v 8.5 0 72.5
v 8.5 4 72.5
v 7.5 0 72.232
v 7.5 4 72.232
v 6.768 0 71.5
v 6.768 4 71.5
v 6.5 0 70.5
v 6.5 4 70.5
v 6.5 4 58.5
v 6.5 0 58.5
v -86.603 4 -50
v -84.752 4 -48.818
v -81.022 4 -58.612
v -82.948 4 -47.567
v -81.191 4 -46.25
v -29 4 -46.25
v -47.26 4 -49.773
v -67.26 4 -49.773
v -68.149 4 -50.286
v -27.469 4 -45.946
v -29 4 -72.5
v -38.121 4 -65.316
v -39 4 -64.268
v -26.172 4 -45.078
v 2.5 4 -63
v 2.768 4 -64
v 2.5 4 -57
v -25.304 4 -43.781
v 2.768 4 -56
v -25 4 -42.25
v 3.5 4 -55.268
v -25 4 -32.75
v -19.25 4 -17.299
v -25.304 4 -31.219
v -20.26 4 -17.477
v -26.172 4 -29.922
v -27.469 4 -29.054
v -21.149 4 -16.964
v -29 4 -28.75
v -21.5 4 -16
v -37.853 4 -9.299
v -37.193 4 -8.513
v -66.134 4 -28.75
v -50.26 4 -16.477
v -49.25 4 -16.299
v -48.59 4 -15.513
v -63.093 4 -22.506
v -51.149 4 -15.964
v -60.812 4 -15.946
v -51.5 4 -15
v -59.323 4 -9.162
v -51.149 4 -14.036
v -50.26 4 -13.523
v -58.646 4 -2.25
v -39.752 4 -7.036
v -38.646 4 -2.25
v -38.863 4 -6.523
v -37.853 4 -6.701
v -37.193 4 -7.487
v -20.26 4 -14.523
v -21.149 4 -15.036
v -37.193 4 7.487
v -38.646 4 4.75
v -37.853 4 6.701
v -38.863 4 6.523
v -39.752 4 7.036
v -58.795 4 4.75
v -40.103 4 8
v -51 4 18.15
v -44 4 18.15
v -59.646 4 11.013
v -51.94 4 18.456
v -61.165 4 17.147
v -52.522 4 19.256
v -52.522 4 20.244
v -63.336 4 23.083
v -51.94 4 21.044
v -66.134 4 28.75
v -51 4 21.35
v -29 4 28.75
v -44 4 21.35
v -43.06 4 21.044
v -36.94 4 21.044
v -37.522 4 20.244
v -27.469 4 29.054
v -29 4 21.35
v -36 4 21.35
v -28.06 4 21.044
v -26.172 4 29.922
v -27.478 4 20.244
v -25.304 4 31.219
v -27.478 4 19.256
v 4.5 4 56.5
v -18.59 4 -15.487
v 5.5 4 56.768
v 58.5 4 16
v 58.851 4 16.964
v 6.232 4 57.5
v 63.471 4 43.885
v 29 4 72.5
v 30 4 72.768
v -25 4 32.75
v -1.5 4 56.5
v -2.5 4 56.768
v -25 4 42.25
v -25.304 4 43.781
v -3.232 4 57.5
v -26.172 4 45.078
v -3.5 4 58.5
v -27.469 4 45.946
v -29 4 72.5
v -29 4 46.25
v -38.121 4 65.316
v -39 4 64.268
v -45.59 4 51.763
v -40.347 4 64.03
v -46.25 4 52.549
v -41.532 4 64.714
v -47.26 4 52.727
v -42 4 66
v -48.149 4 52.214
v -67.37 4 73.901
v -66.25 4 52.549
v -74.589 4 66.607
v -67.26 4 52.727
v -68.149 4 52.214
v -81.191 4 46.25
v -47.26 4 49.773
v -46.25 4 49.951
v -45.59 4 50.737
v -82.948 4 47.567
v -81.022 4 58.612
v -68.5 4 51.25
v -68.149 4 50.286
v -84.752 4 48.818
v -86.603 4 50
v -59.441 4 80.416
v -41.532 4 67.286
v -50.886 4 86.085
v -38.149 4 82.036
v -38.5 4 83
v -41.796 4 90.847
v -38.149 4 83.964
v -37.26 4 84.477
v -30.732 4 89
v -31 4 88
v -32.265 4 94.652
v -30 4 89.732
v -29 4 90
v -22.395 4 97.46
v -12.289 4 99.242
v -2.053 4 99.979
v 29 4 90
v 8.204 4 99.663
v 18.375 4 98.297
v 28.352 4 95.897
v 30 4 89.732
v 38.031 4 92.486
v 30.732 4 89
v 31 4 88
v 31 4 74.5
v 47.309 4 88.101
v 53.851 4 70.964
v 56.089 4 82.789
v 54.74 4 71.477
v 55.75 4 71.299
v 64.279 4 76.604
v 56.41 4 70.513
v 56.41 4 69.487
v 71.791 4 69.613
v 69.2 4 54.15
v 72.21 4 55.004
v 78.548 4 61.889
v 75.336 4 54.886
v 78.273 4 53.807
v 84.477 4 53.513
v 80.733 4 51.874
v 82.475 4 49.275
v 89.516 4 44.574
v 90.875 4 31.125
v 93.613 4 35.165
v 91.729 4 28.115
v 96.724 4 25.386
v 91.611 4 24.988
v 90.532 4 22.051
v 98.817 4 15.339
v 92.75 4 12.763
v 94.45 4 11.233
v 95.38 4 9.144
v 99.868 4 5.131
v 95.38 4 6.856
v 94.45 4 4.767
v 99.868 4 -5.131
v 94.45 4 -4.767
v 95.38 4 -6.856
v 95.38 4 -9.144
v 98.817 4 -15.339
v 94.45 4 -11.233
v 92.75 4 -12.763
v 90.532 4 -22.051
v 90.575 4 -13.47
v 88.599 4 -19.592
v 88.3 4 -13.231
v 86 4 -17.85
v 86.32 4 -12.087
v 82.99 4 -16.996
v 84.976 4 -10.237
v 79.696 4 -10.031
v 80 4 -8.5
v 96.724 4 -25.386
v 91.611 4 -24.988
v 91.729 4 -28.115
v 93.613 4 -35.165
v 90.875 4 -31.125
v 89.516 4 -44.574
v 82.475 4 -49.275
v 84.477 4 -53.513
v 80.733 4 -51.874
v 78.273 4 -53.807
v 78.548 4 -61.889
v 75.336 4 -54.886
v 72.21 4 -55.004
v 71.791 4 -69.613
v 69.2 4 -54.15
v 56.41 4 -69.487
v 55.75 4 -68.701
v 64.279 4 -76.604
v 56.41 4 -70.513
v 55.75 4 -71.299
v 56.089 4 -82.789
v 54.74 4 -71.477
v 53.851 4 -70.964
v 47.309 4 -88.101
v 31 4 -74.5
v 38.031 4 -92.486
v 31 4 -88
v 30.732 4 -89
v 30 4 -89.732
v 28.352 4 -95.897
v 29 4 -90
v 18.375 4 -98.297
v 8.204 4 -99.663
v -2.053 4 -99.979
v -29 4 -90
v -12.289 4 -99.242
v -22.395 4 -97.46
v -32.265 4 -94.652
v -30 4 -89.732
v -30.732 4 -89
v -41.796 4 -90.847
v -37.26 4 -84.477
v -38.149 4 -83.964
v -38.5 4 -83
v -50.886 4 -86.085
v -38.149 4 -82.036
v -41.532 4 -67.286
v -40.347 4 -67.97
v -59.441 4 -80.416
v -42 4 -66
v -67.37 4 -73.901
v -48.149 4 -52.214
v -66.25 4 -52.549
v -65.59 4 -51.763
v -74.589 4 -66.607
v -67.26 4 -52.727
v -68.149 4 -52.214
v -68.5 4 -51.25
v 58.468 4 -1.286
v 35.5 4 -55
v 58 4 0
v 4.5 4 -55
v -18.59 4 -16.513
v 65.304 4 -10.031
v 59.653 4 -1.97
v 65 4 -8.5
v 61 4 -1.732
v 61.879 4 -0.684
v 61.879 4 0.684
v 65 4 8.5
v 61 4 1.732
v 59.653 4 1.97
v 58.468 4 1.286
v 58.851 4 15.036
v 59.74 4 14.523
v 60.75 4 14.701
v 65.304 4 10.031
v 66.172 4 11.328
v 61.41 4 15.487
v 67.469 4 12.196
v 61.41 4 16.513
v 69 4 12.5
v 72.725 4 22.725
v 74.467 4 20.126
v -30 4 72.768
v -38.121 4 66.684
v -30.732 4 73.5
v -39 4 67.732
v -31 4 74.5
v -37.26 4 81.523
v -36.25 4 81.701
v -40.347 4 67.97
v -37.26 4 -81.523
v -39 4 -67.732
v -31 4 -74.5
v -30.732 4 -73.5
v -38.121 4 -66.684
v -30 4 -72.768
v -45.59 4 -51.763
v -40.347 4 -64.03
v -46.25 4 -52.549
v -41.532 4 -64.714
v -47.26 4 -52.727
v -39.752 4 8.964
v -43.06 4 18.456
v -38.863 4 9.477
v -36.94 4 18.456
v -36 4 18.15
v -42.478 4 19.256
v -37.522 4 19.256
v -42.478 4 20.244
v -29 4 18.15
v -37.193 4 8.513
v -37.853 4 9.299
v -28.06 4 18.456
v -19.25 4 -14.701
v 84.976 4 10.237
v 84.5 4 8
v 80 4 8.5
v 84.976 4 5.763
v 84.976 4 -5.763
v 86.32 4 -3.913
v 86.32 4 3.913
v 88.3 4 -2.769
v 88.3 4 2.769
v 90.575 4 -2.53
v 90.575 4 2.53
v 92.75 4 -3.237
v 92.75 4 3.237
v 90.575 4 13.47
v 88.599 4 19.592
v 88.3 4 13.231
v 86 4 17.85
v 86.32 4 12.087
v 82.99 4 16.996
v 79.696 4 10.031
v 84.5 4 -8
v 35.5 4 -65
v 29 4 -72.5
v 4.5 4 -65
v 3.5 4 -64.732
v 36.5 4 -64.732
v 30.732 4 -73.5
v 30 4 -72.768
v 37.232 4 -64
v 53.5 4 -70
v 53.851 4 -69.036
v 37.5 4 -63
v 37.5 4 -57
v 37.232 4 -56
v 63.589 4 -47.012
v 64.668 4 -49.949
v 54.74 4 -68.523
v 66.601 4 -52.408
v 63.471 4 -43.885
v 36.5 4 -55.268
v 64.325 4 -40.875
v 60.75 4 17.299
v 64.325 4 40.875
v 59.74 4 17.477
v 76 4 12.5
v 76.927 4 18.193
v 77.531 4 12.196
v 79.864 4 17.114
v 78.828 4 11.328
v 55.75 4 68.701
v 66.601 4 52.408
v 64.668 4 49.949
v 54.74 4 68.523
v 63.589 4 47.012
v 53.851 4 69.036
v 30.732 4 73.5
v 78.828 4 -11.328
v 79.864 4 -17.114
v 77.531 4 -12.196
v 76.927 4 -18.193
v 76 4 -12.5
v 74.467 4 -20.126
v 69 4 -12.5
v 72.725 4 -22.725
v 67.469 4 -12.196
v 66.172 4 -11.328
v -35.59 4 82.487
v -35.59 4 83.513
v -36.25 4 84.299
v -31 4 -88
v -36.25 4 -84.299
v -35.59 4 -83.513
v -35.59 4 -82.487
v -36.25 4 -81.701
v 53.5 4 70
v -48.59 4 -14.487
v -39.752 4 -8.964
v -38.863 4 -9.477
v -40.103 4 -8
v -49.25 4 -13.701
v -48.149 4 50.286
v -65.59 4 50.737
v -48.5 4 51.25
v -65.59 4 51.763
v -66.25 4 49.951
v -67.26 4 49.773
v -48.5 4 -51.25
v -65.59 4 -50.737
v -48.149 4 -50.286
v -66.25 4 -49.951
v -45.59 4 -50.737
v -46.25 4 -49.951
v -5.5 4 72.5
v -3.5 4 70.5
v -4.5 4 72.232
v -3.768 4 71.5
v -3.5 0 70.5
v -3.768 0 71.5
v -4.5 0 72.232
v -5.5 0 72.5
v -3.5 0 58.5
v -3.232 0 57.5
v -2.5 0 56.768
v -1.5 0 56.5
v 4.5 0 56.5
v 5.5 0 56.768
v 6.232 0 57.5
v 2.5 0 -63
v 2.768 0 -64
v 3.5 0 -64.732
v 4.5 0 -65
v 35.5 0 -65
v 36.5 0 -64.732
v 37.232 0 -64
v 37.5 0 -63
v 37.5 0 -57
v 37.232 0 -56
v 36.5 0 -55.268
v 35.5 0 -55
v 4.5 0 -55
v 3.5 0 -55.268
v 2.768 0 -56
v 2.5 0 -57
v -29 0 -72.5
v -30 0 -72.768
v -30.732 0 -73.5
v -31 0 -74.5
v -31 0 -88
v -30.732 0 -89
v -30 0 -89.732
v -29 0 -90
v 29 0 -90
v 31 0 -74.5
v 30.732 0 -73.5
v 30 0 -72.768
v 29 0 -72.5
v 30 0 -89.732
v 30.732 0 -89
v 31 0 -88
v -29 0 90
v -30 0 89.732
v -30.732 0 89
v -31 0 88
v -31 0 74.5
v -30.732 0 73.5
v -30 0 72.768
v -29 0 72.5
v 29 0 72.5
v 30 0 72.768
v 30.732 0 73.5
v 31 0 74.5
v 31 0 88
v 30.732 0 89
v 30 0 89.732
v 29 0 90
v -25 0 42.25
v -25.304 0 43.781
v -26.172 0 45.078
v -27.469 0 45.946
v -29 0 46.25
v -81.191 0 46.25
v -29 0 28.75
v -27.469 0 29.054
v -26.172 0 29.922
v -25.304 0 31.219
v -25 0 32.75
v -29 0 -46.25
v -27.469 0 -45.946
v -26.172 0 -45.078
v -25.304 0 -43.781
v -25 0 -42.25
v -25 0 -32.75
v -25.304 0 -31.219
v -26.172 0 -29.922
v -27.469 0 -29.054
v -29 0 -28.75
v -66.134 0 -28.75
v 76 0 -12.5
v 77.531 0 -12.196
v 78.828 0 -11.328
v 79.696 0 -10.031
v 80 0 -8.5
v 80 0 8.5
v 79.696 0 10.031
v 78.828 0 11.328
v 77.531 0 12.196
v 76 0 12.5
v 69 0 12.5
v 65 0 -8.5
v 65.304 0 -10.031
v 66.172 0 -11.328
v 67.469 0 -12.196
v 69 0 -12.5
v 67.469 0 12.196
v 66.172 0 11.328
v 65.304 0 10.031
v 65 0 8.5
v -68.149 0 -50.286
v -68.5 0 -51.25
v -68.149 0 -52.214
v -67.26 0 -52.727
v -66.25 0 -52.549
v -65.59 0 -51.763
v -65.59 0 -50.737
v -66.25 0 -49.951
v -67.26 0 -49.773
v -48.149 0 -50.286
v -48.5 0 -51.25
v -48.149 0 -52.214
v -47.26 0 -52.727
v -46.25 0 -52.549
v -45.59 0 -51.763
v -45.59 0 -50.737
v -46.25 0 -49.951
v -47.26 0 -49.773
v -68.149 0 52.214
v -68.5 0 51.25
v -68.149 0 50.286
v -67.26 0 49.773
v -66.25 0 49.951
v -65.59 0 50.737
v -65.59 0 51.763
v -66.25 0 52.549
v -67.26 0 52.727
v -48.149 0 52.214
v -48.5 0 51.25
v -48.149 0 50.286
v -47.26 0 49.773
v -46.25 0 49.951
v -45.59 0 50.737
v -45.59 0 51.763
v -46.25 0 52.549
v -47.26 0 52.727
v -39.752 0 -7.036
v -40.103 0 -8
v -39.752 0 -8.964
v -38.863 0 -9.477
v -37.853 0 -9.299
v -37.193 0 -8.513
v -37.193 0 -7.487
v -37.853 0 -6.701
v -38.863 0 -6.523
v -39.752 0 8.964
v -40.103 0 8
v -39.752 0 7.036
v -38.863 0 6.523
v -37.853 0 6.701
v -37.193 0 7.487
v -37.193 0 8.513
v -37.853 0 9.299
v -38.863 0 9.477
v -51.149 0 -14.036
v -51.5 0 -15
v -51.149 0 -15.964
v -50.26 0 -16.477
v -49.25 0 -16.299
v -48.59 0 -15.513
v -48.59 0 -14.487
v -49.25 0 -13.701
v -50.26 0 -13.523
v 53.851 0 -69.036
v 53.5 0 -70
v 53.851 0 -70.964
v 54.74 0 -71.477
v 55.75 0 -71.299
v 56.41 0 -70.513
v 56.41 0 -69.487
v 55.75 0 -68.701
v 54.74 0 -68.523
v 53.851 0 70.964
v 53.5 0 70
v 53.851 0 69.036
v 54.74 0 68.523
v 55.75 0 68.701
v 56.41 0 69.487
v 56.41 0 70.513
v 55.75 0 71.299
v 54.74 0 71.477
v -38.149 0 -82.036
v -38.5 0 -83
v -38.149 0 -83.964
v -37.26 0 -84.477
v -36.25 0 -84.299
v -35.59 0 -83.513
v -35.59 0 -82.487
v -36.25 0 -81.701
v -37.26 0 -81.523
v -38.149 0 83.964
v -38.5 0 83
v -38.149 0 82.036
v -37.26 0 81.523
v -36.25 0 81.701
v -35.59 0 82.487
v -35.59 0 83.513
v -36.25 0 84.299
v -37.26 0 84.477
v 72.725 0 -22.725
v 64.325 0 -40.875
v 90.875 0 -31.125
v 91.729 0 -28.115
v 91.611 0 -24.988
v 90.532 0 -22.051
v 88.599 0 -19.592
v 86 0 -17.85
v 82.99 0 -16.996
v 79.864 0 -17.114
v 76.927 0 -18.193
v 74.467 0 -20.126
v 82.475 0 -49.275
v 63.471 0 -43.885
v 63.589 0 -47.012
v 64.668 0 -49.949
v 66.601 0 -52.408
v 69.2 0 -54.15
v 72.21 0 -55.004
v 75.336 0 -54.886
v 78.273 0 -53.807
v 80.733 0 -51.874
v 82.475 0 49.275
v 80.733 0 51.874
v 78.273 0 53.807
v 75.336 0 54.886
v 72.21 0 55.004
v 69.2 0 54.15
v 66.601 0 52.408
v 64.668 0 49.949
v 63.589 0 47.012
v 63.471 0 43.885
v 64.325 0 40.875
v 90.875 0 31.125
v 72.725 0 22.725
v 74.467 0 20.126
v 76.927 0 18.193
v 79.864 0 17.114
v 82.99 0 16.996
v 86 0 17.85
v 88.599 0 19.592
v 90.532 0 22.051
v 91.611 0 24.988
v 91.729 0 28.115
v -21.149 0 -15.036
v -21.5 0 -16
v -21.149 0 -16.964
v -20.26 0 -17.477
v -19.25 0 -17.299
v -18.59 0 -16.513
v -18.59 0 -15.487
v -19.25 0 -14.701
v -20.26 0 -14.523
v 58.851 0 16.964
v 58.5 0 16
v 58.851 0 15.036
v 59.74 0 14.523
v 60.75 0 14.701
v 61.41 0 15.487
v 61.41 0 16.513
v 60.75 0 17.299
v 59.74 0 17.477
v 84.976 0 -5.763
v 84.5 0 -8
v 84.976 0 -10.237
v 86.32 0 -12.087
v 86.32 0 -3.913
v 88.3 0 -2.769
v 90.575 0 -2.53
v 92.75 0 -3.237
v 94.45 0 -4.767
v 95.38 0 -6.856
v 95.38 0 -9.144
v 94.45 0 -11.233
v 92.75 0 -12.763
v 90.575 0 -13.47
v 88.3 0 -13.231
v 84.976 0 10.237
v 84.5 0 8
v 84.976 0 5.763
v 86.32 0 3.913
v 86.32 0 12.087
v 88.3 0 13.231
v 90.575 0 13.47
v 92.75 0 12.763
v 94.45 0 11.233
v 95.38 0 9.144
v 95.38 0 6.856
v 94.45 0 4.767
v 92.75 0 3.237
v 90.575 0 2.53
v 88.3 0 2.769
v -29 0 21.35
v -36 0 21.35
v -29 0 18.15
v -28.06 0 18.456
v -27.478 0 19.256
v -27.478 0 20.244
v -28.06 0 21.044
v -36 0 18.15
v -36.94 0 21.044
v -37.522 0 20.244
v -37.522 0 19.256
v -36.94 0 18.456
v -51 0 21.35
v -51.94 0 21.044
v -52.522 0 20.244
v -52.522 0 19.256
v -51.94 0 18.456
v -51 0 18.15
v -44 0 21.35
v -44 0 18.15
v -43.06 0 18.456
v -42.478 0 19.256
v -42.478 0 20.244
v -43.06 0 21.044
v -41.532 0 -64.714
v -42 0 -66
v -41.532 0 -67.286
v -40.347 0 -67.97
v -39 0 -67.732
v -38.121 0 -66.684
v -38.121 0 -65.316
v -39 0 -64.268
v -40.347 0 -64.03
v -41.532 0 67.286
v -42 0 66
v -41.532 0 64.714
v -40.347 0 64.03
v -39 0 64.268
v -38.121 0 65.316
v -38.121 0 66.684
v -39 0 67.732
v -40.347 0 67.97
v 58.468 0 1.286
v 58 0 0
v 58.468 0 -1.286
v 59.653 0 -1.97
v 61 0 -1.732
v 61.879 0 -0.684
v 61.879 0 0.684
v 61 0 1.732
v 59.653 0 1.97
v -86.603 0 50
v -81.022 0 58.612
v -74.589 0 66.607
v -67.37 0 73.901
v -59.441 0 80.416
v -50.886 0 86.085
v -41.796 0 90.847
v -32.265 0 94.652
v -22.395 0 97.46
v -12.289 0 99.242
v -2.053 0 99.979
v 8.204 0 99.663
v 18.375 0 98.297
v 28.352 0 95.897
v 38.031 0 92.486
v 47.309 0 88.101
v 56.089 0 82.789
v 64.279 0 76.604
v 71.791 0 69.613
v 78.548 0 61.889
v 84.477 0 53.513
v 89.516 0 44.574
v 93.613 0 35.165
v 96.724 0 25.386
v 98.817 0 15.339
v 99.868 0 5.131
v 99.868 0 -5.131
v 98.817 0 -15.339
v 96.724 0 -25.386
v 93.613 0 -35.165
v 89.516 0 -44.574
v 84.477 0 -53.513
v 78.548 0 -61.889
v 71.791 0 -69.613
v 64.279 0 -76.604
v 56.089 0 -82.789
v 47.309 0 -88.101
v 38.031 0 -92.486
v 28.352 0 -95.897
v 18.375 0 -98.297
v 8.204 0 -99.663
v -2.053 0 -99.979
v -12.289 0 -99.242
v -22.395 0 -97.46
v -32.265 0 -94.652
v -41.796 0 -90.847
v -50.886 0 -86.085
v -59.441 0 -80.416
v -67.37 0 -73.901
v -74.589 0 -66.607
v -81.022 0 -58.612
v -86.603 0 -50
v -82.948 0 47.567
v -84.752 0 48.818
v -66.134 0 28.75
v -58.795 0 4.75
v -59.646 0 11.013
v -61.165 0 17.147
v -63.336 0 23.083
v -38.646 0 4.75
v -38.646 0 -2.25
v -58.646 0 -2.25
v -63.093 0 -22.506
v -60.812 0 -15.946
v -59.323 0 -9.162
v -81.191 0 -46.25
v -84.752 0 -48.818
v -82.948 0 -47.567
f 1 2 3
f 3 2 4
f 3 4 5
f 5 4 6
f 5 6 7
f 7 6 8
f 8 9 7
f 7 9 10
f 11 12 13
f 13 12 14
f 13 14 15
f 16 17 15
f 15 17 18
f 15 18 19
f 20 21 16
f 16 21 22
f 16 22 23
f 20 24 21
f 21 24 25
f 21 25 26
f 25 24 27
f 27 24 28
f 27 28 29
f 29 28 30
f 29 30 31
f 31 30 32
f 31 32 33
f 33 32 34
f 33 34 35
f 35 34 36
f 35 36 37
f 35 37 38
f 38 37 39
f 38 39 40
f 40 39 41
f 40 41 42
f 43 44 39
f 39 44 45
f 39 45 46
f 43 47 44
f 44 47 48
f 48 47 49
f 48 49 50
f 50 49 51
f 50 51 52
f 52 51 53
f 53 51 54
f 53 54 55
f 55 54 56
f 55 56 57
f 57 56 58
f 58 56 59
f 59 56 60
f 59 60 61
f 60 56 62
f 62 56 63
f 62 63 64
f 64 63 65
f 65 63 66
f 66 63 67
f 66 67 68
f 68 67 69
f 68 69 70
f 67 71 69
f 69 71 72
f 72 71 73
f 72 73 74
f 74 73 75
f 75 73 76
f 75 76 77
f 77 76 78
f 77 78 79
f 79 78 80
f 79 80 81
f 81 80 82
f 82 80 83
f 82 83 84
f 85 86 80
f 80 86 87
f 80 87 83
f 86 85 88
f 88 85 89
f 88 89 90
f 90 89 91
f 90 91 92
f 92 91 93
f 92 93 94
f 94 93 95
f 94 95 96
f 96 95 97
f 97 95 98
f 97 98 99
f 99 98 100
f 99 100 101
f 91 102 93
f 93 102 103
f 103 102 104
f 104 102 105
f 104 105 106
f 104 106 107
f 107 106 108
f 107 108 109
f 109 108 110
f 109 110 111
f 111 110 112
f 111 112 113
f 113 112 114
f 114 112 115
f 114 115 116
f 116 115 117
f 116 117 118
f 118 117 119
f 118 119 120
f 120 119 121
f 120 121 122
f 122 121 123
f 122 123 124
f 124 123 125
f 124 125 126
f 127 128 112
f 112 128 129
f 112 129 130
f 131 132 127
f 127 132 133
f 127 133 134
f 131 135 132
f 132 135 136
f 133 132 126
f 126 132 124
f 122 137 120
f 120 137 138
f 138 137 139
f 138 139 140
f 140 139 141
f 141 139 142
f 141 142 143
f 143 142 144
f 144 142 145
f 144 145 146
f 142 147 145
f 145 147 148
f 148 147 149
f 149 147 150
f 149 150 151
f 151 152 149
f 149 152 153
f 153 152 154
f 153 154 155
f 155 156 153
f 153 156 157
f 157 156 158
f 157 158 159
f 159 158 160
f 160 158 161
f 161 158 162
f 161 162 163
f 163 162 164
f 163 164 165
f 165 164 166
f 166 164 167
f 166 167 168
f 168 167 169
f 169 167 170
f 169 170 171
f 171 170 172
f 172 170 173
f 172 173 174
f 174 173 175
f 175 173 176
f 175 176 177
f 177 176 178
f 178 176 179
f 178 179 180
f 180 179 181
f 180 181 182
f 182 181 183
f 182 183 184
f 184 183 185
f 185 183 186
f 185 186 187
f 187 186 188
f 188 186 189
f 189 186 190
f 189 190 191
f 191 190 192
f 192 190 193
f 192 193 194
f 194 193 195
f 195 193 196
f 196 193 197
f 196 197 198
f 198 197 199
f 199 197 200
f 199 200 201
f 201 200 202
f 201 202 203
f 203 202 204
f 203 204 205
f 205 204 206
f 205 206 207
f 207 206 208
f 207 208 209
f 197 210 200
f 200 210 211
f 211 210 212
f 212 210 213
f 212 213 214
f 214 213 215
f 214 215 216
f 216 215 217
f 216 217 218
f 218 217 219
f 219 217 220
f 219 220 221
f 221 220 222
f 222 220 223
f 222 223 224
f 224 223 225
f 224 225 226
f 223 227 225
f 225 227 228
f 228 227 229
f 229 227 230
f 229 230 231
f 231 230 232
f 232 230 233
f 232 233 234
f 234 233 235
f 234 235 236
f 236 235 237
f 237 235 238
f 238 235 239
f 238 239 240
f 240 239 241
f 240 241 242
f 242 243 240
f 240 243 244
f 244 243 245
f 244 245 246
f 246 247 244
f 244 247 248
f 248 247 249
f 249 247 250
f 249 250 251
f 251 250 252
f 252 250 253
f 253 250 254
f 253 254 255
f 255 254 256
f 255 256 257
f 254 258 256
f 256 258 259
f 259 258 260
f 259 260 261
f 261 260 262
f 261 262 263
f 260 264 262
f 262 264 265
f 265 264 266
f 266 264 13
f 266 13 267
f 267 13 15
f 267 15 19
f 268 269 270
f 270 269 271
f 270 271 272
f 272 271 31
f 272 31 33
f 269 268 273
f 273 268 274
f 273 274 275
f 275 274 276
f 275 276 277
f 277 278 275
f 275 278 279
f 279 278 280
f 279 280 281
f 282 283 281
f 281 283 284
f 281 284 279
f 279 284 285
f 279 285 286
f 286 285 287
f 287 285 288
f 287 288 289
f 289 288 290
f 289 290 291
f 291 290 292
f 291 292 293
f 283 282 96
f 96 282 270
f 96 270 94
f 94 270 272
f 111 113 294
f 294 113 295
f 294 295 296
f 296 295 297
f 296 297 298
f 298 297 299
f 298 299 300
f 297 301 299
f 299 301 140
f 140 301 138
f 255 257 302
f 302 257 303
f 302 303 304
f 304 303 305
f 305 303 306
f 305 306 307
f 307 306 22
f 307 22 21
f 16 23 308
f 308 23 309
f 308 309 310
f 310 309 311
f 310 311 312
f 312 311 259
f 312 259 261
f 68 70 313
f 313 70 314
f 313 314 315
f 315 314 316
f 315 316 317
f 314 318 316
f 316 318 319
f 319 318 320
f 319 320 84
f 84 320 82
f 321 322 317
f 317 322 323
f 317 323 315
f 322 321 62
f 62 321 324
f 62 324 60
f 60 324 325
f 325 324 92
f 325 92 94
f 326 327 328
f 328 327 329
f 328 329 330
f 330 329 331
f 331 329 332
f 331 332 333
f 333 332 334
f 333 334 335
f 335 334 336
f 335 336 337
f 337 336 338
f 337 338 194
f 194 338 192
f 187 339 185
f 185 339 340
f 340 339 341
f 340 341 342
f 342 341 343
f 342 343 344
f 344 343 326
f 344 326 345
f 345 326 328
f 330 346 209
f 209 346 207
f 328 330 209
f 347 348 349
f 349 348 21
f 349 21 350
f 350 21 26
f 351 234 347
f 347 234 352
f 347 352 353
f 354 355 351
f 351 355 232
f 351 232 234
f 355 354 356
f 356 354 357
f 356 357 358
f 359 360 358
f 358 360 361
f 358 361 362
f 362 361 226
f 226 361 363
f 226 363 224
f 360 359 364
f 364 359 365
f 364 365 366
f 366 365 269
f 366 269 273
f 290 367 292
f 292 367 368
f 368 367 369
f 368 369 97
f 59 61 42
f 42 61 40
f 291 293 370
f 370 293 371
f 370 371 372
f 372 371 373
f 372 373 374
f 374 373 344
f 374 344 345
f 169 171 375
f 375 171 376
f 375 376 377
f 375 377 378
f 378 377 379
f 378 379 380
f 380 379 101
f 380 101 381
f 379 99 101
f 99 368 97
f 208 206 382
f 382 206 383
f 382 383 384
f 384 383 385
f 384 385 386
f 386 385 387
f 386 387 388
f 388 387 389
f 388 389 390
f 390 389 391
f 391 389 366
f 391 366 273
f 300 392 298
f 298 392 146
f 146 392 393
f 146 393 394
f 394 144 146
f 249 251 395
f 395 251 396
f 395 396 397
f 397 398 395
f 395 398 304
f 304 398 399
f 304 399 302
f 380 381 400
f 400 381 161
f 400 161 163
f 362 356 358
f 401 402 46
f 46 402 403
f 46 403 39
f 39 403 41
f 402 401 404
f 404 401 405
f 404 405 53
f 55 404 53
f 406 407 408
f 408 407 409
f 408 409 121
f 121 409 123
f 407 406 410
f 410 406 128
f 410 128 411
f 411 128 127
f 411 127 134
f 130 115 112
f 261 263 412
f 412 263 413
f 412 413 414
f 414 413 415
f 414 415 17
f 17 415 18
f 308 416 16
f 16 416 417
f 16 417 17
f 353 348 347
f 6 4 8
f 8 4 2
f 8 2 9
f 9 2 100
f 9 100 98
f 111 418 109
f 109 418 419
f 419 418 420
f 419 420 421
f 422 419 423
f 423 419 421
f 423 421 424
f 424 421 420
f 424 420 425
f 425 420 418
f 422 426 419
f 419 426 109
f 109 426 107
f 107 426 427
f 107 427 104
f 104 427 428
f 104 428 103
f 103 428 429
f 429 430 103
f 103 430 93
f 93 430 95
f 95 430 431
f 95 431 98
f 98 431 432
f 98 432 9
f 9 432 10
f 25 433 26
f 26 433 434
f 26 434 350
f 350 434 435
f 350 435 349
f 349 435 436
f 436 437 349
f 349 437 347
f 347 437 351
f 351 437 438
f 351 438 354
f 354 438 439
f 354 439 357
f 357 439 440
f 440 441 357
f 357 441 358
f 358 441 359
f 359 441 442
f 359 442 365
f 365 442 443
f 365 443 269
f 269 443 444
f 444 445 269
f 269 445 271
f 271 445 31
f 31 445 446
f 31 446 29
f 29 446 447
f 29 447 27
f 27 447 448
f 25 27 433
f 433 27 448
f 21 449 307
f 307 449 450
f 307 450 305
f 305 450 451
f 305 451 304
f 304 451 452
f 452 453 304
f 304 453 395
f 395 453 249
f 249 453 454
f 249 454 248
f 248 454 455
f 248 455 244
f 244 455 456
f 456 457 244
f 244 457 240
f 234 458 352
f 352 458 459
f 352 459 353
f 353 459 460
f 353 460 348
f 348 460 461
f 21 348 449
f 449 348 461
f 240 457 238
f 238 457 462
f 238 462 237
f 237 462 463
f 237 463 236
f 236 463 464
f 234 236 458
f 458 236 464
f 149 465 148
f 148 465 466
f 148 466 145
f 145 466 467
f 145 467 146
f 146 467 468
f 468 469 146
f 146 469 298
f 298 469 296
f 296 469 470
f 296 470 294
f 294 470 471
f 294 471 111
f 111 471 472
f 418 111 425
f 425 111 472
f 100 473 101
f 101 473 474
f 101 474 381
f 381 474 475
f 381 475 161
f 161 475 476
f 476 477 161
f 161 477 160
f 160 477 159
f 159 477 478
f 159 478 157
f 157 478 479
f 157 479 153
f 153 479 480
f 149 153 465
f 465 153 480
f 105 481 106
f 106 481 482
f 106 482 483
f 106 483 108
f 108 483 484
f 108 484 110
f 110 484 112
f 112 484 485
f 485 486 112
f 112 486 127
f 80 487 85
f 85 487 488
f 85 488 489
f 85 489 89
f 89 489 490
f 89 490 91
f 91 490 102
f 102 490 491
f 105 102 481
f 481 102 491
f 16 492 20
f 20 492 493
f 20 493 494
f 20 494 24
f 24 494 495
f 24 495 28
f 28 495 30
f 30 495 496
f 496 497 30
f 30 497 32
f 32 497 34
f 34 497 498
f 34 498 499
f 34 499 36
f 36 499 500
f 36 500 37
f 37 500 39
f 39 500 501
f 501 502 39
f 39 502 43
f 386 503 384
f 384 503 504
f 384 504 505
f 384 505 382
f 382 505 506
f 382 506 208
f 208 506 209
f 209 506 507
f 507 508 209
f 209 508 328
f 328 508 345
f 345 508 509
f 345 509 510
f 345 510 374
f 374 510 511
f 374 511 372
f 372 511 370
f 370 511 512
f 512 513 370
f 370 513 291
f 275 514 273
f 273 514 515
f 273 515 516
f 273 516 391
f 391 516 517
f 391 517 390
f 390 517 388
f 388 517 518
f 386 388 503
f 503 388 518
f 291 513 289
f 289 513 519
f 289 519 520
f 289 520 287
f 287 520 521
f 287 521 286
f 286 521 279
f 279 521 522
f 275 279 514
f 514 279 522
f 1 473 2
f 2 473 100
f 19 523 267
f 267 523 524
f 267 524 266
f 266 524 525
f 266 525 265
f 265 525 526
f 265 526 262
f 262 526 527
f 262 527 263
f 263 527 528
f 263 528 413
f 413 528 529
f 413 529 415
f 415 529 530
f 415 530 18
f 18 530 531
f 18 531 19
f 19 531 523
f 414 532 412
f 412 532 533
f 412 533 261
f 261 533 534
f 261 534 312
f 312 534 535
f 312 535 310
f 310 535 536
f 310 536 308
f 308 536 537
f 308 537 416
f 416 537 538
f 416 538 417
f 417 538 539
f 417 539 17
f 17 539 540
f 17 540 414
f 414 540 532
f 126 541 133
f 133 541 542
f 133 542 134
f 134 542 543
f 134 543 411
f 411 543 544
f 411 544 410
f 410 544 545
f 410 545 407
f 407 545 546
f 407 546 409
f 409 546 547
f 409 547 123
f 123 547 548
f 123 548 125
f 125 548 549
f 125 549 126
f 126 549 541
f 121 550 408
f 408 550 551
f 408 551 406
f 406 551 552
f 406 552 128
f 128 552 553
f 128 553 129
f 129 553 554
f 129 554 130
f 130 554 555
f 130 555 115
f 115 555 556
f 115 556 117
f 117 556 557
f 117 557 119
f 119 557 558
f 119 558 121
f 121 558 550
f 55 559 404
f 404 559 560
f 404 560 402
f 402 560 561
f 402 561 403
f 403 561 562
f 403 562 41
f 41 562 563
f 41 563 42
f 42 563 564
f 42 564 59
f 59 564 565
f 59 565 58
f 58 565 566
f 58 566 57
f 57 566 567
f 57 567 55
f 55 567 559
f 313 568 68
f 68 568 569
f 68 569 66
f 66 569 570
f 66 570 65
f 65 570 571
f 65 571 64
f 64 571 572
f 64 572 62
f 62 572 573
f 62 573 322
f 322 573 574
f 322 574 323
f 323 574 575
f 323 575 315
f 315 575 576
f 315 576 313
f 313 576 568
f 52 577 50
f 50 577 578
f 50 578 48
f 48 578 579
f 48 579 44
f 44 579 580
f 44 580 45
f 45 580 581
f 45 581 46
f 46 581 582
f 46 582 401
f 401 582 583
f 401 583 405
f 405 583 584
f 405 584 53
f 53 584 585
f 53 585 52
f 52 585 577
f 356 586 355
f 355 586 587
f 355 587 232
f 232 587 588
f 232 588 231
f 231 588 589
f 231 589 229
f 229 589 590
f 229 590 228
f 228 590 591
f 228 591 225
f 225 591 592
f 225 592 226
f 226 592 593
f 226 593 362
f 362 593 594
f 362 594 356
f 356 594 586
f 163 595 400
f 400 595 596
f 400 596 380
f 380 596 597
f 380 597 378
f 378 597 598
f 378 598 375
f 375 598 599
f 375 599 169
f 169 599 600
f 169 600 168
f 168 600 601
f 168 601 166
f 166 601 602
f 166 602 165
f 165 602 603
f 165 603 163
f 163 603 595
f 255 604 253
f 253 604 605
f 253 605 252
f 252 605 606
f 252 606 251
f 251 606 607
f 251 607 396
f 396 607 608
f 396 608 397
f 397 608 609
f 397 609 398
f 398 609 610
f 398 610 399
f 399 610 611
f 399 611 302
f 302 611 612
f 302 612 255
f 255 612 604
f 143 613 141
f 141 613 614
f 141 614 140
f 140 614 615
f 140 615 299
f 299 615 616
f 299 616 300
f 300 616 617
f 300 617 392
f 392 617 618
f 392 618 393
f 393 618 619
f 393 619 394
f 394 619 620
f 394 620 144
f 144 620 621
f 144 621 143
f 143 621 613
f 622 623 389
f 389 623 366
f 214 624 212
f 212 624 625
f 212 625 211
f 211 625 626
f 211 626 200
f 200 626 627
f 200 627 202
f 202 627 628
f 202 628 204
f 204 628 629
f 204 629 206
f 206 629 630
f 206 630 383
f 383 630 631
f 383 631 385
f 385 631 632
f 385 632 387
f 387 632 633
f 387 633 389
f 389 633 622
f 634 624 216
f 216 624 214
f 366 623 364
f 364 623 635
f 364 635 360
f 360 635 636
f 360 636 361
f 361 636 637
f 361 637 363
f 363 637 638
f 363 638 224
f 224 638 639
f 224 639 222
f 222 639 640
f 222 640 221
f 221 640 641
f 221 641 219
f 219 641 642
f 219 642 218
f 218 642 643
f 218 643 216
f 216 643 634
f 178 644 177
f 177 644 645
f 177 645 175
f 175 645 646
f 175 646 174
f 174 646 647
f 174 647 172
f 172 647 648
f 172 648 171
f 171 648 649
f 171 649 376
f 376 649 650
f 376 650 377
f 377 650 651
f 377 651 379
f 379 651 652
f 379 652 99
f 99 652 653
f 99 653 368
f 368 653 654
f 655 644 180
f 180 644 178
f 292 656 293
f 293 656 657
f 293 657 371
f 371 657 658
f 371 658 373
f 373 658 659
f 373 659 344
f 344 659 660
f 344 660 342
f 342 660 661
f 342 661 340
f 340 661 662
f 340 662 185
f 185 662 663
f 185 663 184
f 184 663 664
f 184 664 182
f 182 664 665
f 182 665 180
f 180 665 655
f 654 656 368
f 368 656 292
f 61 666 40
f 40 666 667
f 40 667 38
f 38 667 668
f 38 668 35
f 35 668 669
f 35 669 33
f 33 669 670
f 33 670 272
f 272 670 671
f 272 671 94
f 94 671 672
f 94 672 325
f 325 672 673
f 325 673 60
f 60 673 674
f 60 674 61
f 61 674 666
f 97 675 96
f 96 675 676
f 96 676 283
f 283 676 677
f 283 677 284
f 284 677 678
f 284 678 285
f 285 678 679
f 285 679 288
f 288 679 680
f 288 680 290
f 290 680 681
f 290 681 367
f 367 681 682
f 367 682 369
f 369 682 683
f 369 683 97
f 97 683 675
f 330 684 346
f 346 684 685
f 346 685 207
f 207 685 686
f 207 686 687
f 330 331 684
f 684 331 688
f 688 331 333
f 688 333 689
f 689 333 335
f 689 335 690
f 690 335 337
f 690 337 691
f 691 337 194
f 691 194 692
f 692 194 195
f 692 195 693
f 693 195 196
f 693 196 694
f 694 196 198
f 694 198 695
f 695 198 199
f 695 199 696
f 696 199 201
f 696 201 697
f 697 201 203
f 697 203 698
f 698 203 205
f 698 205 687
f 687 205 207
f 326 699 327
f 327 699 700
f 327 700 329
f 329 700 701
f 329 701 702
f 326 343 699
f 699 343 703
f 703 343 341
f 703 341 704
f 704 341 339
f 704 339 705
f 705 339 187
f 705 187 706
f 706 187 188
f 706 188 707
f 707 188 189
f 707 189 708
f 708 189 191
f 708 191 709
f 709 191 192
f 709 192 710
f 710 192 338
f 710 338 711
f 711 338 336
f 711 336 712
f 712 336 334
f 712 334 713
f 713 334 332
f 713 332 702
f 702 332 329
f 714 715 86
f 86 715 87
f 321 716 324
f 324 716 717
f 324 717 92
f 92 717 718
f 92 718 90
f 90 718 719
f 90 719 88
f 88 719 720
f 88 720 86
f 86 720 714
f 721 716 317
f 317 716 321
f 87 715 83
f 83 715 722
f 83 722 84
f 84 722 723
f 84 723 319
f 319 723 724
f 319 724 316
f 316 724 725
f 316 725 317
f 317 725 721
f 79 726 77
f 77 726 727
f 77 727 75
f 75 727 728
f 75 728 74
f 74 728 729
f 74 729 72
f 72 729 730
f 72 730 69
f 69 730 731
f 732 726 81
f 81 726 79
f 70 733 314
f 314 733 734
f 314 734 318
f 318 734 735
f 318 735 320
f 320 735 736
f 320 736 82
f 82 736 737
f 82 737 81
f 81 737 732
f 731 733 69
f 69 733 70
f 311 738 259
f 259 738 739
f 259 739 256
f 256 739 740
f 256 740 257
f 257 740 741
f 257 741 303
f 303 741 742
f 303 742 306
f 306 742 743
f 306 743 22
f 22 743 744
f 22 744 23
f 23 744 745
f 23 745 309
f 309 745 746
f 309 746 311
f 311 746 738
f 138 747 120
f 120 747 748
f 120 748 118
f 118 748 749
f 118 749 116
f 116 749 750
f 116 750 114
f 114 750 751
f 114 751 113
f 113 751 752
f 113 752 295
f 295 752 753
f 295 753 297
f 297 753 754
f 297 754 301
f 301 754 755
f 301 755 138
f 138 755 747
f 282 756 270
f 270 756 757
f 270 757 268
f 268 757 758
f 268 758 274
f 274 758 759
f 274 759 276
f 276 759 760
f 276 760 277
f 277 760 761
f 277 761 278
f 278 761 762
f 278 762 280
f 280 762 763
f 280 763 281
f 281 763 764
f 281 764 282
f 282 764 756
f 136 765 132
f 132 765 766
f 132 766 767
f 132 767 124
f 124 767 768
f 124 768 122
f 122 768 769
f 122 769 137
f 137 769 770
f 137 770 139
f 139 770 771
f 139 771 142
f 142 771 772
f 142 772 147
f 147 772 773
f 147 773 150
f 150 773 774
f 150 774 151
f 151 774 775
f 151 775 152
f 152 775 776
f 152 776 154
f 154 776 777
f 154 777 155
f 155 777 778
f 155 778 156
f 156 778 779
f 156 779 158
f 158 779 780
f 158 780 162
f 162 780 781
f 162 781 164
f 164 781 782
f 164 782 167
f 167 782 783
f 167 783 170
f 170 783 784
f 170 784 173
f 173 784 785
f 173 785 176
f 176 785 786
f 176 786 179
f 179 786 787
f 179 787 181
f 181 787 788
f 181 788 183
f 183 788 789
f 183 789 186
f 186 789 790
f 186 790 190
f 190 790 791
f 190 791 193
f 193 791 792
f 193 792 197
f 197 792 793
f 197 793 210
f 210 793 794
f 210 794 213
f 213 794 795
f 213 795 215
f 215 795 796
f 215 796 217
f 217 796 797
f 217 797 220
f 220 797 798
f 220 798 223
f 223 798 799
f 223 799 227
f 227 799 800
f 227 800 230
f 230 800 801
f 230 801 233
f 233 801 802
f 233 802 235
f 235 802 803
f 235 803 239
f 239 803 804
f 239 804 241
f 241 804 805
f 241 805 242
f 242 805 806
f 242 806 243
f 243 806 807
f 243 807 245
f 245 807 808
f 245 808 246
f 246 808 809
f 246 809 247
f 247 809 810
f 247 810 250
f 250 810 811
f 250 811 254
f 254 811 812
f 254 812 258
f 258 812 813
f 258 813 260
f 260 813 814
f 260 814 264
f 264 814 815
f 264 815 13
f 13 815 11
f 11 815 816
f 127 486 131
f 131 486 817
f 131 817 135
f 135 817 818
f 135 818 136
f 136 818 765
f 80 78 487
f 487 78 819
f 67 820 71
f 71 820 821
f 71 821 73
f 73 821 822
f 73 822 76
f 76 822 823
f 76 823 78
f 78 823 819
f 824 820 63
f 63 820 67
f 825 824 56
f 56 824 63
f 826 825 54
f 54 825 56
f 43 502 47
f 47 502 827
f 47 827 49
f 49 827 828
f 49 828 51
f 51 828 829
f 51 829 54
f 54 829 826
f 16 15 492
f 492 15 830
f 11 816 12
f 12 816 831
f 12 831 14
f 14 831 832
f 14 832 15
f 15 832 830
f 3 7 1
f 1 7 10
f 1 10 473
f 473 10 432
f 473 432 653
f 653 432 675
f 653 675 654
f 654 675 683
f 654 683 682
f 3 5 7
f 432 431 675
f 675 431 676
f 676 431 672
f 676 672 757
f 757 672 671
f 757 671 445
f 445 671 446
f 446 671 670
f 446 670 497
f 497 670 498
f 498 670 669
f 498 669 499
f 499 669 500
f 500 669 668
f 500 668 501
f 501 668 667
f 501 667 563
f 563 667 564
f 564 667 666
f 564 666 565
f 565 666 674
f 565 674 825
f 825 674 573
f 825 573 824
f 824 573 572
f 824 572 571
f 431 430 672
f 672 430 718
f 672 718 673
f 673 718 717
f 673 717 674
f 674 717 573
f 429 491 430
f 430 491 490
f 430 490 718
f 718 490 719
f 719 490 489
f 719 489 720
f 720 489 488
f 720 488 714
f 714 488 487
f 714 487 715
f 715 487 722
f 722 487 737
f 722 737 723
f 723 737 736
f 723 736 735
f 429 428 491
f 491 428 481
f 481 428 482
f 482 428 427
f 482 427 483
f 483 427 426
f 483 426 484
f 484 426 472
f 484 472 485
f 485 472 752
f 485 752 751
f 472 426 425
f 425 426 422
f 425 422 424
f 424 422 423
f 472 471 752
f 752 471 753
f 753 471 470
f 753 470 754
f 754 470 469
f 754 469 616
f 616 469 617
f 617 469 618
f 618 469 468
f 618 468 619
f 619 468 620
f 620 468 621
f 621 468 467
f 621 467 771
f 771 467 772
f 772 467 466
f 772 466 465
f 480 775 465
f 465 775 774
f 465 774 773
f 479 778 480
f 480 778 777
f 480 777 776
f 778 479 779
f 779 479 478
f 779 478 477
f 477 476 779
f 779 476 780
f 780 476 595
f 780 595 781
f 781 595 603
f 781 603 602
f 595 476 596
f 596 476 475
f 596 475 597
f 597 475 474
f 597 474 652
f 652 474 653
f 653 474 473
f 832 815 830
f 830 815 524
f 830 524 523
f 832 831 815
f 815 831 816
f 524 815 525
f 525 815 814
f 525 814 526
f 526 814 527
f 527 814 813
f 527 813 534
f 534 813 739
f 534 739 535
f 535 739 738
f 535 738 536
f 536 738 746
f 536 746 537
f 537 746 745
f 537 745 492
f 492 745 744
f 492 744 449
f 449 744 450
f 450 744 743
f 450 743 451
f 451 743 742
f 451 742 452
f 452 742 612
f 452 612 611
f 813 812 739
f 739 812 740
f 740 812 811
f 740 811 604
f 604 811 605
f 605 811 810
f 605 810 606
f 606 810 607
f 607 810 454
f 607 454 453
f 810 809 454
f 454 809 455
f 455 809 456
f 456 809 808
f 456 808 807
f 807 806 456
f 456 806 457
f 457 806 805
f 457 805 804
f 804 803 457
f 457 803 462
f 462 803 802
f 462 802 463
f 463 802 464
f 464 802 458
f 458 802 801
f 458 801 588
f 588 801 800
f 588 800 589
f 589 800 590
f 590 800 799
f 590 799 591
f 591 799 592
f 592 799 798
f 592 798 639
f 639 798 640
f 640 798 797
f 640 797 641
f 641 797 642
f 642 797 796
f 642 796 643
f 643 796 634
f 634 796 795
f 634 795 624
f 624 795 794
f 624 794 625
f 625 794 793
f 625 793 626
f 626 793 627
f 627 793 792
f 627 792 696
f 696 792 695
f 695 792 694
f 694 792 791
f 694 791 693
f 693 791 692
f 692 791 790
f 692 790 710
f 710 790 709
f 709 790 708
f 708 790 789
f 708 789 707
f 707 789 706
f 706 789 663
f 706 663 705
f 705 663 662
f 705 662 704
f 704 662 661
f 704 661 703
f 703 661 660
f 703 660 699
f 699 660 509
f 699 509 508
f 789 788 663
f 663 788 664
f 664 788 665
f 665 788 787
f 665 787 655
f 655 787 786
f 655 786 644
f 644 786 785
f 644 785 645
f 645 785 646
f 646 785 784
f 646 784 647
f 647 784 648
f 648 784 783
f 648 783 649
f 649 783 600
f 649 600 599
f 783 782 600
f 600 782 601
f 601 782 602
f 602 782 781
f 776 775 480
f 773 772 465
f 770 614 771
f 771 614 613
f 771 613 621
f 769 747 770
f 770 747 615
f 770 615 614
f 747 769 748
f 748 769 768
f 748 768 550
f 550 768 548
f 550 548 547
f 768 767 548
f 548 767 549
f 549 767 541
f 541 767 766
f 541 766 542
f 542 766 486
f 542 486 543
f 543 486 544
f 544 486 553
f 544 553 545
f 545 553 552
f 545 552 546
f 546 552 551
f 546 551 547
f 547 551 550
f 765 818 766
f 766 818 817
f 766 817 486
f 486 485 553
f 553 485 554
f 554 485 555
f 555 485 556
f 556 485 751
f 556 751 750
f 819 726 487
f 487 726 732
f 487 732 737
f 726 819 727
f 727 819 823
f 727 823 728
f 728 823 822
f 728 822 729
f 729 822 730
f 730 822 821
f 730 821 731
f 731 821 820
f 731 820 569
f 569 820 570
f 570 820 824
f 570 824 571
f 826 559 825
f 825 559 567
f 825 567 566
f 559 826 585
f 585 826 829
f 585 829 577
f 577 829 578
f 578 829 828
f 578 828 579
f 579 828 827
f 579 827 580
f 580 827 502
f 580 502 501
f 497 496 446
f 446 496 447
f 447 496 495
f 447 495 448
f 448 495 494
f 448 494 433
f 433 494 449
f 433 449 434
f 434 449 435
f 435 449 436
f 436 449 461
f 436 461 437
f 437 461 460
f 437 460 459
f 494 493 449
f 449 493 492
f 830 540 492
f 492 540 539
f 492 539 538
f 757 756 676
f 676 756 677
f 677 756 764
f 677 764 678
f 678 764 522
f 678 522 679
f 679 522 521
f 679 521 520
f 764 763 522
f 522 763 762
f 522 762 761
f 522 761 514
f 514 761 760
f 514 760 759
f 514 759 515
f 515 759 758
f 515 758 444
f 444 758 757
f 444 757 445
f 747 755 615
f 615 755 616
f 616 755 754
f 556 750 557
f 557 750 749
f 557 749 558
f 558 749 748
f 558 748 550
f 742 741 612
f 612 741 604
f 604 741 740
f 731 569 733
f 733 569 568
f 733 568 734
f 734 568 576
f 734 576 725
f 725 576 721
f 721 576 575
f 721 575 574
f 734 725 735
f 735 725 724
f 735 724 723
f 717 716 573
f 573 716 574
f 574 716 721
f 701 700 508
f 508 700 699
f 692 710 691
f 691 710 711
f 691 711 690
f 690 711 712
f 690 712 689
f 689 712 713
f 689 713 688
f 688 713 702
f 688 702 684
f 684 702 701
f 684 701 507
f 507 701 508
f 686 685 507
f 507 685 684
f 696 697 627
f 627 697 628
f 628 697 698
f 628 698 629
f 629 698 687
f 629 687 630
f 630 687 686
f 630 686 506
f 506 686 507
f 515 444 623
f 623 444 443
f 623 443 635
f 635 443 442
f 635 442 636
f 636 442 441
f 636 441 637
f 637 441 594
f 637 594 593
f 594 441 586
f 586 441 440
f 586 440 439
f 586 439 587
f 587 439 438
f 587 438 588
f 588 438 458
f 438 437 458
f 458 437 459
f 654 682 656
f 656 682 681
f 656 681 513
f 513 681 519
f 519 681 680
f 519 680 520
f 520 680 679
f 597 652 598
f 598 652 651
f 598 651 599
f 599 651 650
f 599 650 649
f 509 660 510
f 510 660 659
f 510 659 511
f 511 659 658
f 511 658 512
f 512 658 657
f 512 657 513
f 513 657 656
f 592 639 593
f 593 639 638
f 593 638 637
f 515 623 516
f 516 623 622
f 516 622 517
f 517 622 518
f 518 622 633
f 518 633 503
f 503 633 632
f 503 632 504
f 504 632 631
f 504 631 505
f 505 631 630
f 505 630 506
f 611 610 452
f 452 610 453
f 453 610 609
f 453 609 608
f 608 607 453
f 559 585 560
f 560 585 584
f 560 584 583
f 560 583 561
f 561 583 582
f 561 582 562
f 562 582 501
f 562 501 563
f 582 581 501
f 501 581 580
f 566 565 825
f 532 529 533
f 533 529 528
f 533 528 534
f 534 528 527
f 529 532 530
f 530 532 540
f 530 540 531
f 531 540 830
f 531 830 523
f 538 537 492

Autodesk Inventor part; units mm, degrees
ref_plane "YZ Plane" through (0, 0, 0) normal (1, 0, 0) x (0, 1, 0)
ref_plane "XZ Plane" through (0, 0, 0) normal (0, 1, 0) x (-1, 0, 0)
ref_plane "XY Plane" through (0, 0, 0) normal (0, 0, 1) x (1, 0, 0)
sketch "Skizze1" plane through (0, 0, 0) normal (0, 1, 0) x (-1, 0, 0)
  arc A0 (86.6025, 50) -> (86.6025, -50) centre (117.2454, 0) ccw
  arc A1 (86.6025, 50) -> (86.6025, -50) centre (0, 0) ccw
  line L0 (31, -90) -> (-31, -90)
  line L1 (-31, -90) -> (-31, -72.5)
  line L2 (-31, -72.5) -> (31, -72.5)
  line L3 (31, -72.5) -> (31, -90)
  line L4 (31, 72.5) -> (-31, 72.5)
  line L5 (-31, 72.5) -> (-31, 90)
  line L6 (-31, 90) -> (31, 90)
  line L7 (31, 90) -> (31, 72.5)
  circle A2 centre (67, -51.25) radius 1.5
  circle A3 centre (47, -51.25) radius 1.5
  circle A4 centre (67, 51.25) radius 1.5
  circle A5 centre (47, 51.25) radius 1.5
  line L8 (81.191, -46.25) -> (25, -46.25)
  line L9 (25, -46.25) -> (25, -28.75)
  line L10 (25, -28.75) -> (66.1335, -28.75)
  line L11 (66.1335, 28.75) -> (25, 28.75)
  line L12 (25, 28.75) -> (25, 46.25)
  line L13 (25, 46.25) -> (81.191, 46.25)
  circle A6 centre (38.6025, -8) radius 1.5
  circle A7 centre (38.6025, 8) radius 1.5
  line L14 (58.7952, 4.75) -> (38.6457, 4.75)
  line L15 (38.6457, 4.75) -> (38.6457, -2.25)
  line L16 (38.6457, -2.25) -> (58.6457, -2.25)
  line L17 (-80, -12.5) -> (-65, -12.5)
  line L18 (-65, -12.5) -> (-65, 12.5)
  line L19 (-65, 12.5) -> (-80, 12.5)
  line L20 (-80, 12.5) -> (-80, -12.5)
  circle A8 centre (50, -15) radius 1.5
  circle A9 centre (-55, -70) radius 1.5
  circle A10 centre (-55, 70) radius 1.5
  circle A11 centre (37, -83) radius 1.5
  circle A12 centre (37, 83) radius 1.5
  line L21 (-73.4, -45.0752) -> (-81.8, -26.9248) construction
  line L22 (-64.3248, -40.8752) -> (-72.7248, -22.7248)
  line L23 (-90.8752, -31.1248) -> (-82.4752, -49.2752)
  arc A13 (-82.4752, -49.2752) -> (-64.3248, -40.8752) centre (-73.4, -45.0752) ccw
  arc A14 (-72.7248, -22.7248) -> (-90.8752, -31.1248) centre (-81.8, -26.9248) ccw
  line L24 (-73.4, -45.0752) -> (-81.8, -26.9248) construction
  line L25 (-81.8, 26.9248) -> (-73.4, 45.0752) construction
  line L26 (-90.8752, 31.1248) -> (-82.4752, 49.2752)
  line L27 (-64.3248, 40.8752) -> (-72.7248, 22.7248)
  arc A15 (-90.8752, 31.1248) -> (-72.7248, 22.7248) centre (-81.8, 26.9248) ccw
  arc A16 (-64.3248, 40.8752) -> (-82.4752, 49.2752) centre (-73.4, 45.0752) ccw
  line L28 (-81.8, 26.9248) -> (-73.4, 45.0752) construction
  circle A17 centre (20, -16) radius 1.5
  circle A18 centre (-60, 16) radius 1.5
  line L29 (-2.5, -65) -> (-37.5, -65)
  line L30 (-37.5, -65) -> (-37.5, -55)
  line L31 (-37.5, -55) -> (-2.5, -55)
  line L32 (-2.5, -55) -> (-2.5, -65)
  circle A19 centre (-90, -8) radius 5.5
  circle A20 centre (-90, 8) radius 5.5
  line L33 (3.5, 72.5) -> (-6.5, 72.5)
  line L34 (-6.5, 72.5) -> (-6.5, 56.5)
  line L35 (-6.5, 56.5) -> (3.5, 56.5)
  line L36 (3.5, 56.5) -> (3.5, 72.5)
  line L37 (36, 19.75) -> (29, 19.75) construction
  line L38 (36, 21.35) -> (29, 21.35)
  line L39 (29, 18.15) -> (36, 18.15)
  arc A21 (36, 18.15) -> (36, 21.35) centre (36, 19.75) ccw
  arc A22 (29, 21.35) -> (29, 18.15) centre (29, 19.75) ccw
  line L40 (44, 19.75) -> (51, 19.75) construction
  line L41 (44, 21.35) -> (51, 21.35)
  line L42 (51, 18.15) -> (44, 18.15)
  arc A23 (44, 21.35) -> (44, 18.15) centre (44, 19.75) ccw
  arc A24 (51, 18.15) -> (51, 21.35) centre (51, 19.75) ccw
  circle A25 centre (40, -66) radius 2
  circle A26 centre (40, 66) radius 2
  circle A27 centre (-60, 0) radius 2
  point P0 (58.6025, 0)
  point P1 (-31, -81.25)
  point P2 (-31, 81.25)
  point P3 (-77.6, -36)
  point P4 (-77.6, -36)
  point P5 (-77.6, 36)
  point P6 (-77.6, 36)
  point P7 (32.5, 19.75)
  point P8 (47.5, 19.75)
  dimension "d1" = 100
  dimension "d3" = 28
  dimension "d11" = 17.5
  dimension "d12" = 17.5
  dimension "d13" = 72.5
  dimension "d14" = 72.5
  dimension "d15" = 62
  dimension "d16" = 62
  dimension "d17" = 31
  dimension "d18" = 3
  dimension "d19" = 3
  dimension "d20" = 3
  dimension "d21" = 3
  dimension "d22" = 20
  dimension "d23" = 20
  dimension "d25" = 17.5
  dimension "d26" = 17.5
  dimension "d27" = 46.25
  dimension "d28" = 46.25
  dimension "d31" = 5
  dimension "d32" = 5
  dimension "d33" = 25
  dimension "d34" = 47
  dimension "d35" = 3
  dimension "d36" = 3
  dimension "d37" = 16
  dimension "d38" = 8
  dimension "d39" = 20
  dimension "d50" = 7
  dimension "d51" = 47.75
  dimension "d52" = 20
  dimension "d53" = 15
  dimension "d54" = 25
  dimension "d55" = 12.5
  dimension "d57" = 65
  dimension "d100" = 3
  dimension "d101" = 3
  dimension "d102" = 3
  dimension "d103" = 3
  dimension "d104" = 3
  dimension "d105" = 70
  dimension "d106" = 70
  dimension "d107" = 55
  dimension "d108" = 83
  dimension "d109" = 83
  dimension "d110" = 37
  dimension "d111" = 50
  dimension "d112" = 15
  dimension "d113" = 20
  dimension "d114" = 20
  dimension "d115" = 10
  dimension "d117" = 10
  dimension "d119" = 77.6
  dimension "d120" = 73.4
  dimension "d121" = 36
  dimension "d122" = 36
  dimension "d125" = 16
  dimension "d126" = 20
  dimension "d127" = 3
  dimension "d128" = 3
  dimension "d129" = 80
  dimension "d130" = 32
  dimension "d132" = 10
  dimension "d133" = 35
extrude "Extrusion1" add sketch "Skizze1" along normal blind 4 contours A0 L13 L12 L11 L14 L15 L16 L10 L9 L8 A1
fillet "Rundung1" radius 4 8 edges at (65, 2, 12.5) (65, 2, -12.5) (80, 2, 12.5) (80, 2, -12.5) (-25, 2, -28.75) (-25, 2, -46.25) (-25, 2, 28.75) (-25, 2, 46.25)
fillet "Rundung2" radius 2 16 edges at (31, 2, 90) (31, 2, 72.5) (-31, 2, 72.5) (-31, 2, 90) (31, 2, -90) (31, 2, -72.5) (-31, 2, -90) (-31, 2, -72.5) (2.5, 2, -55) (37.5, 2, -55) (37.5, 2, -65) (2.5, 2, -65) (6.5, 2, 56.5) (-3.5, 2, 56.5) (-3.5, 2, 72.5) (6.5, 2, 72.5)
equation "\"d14\" = d13"
equation "\"d15\" = d16"
properties part number "middle panel"
